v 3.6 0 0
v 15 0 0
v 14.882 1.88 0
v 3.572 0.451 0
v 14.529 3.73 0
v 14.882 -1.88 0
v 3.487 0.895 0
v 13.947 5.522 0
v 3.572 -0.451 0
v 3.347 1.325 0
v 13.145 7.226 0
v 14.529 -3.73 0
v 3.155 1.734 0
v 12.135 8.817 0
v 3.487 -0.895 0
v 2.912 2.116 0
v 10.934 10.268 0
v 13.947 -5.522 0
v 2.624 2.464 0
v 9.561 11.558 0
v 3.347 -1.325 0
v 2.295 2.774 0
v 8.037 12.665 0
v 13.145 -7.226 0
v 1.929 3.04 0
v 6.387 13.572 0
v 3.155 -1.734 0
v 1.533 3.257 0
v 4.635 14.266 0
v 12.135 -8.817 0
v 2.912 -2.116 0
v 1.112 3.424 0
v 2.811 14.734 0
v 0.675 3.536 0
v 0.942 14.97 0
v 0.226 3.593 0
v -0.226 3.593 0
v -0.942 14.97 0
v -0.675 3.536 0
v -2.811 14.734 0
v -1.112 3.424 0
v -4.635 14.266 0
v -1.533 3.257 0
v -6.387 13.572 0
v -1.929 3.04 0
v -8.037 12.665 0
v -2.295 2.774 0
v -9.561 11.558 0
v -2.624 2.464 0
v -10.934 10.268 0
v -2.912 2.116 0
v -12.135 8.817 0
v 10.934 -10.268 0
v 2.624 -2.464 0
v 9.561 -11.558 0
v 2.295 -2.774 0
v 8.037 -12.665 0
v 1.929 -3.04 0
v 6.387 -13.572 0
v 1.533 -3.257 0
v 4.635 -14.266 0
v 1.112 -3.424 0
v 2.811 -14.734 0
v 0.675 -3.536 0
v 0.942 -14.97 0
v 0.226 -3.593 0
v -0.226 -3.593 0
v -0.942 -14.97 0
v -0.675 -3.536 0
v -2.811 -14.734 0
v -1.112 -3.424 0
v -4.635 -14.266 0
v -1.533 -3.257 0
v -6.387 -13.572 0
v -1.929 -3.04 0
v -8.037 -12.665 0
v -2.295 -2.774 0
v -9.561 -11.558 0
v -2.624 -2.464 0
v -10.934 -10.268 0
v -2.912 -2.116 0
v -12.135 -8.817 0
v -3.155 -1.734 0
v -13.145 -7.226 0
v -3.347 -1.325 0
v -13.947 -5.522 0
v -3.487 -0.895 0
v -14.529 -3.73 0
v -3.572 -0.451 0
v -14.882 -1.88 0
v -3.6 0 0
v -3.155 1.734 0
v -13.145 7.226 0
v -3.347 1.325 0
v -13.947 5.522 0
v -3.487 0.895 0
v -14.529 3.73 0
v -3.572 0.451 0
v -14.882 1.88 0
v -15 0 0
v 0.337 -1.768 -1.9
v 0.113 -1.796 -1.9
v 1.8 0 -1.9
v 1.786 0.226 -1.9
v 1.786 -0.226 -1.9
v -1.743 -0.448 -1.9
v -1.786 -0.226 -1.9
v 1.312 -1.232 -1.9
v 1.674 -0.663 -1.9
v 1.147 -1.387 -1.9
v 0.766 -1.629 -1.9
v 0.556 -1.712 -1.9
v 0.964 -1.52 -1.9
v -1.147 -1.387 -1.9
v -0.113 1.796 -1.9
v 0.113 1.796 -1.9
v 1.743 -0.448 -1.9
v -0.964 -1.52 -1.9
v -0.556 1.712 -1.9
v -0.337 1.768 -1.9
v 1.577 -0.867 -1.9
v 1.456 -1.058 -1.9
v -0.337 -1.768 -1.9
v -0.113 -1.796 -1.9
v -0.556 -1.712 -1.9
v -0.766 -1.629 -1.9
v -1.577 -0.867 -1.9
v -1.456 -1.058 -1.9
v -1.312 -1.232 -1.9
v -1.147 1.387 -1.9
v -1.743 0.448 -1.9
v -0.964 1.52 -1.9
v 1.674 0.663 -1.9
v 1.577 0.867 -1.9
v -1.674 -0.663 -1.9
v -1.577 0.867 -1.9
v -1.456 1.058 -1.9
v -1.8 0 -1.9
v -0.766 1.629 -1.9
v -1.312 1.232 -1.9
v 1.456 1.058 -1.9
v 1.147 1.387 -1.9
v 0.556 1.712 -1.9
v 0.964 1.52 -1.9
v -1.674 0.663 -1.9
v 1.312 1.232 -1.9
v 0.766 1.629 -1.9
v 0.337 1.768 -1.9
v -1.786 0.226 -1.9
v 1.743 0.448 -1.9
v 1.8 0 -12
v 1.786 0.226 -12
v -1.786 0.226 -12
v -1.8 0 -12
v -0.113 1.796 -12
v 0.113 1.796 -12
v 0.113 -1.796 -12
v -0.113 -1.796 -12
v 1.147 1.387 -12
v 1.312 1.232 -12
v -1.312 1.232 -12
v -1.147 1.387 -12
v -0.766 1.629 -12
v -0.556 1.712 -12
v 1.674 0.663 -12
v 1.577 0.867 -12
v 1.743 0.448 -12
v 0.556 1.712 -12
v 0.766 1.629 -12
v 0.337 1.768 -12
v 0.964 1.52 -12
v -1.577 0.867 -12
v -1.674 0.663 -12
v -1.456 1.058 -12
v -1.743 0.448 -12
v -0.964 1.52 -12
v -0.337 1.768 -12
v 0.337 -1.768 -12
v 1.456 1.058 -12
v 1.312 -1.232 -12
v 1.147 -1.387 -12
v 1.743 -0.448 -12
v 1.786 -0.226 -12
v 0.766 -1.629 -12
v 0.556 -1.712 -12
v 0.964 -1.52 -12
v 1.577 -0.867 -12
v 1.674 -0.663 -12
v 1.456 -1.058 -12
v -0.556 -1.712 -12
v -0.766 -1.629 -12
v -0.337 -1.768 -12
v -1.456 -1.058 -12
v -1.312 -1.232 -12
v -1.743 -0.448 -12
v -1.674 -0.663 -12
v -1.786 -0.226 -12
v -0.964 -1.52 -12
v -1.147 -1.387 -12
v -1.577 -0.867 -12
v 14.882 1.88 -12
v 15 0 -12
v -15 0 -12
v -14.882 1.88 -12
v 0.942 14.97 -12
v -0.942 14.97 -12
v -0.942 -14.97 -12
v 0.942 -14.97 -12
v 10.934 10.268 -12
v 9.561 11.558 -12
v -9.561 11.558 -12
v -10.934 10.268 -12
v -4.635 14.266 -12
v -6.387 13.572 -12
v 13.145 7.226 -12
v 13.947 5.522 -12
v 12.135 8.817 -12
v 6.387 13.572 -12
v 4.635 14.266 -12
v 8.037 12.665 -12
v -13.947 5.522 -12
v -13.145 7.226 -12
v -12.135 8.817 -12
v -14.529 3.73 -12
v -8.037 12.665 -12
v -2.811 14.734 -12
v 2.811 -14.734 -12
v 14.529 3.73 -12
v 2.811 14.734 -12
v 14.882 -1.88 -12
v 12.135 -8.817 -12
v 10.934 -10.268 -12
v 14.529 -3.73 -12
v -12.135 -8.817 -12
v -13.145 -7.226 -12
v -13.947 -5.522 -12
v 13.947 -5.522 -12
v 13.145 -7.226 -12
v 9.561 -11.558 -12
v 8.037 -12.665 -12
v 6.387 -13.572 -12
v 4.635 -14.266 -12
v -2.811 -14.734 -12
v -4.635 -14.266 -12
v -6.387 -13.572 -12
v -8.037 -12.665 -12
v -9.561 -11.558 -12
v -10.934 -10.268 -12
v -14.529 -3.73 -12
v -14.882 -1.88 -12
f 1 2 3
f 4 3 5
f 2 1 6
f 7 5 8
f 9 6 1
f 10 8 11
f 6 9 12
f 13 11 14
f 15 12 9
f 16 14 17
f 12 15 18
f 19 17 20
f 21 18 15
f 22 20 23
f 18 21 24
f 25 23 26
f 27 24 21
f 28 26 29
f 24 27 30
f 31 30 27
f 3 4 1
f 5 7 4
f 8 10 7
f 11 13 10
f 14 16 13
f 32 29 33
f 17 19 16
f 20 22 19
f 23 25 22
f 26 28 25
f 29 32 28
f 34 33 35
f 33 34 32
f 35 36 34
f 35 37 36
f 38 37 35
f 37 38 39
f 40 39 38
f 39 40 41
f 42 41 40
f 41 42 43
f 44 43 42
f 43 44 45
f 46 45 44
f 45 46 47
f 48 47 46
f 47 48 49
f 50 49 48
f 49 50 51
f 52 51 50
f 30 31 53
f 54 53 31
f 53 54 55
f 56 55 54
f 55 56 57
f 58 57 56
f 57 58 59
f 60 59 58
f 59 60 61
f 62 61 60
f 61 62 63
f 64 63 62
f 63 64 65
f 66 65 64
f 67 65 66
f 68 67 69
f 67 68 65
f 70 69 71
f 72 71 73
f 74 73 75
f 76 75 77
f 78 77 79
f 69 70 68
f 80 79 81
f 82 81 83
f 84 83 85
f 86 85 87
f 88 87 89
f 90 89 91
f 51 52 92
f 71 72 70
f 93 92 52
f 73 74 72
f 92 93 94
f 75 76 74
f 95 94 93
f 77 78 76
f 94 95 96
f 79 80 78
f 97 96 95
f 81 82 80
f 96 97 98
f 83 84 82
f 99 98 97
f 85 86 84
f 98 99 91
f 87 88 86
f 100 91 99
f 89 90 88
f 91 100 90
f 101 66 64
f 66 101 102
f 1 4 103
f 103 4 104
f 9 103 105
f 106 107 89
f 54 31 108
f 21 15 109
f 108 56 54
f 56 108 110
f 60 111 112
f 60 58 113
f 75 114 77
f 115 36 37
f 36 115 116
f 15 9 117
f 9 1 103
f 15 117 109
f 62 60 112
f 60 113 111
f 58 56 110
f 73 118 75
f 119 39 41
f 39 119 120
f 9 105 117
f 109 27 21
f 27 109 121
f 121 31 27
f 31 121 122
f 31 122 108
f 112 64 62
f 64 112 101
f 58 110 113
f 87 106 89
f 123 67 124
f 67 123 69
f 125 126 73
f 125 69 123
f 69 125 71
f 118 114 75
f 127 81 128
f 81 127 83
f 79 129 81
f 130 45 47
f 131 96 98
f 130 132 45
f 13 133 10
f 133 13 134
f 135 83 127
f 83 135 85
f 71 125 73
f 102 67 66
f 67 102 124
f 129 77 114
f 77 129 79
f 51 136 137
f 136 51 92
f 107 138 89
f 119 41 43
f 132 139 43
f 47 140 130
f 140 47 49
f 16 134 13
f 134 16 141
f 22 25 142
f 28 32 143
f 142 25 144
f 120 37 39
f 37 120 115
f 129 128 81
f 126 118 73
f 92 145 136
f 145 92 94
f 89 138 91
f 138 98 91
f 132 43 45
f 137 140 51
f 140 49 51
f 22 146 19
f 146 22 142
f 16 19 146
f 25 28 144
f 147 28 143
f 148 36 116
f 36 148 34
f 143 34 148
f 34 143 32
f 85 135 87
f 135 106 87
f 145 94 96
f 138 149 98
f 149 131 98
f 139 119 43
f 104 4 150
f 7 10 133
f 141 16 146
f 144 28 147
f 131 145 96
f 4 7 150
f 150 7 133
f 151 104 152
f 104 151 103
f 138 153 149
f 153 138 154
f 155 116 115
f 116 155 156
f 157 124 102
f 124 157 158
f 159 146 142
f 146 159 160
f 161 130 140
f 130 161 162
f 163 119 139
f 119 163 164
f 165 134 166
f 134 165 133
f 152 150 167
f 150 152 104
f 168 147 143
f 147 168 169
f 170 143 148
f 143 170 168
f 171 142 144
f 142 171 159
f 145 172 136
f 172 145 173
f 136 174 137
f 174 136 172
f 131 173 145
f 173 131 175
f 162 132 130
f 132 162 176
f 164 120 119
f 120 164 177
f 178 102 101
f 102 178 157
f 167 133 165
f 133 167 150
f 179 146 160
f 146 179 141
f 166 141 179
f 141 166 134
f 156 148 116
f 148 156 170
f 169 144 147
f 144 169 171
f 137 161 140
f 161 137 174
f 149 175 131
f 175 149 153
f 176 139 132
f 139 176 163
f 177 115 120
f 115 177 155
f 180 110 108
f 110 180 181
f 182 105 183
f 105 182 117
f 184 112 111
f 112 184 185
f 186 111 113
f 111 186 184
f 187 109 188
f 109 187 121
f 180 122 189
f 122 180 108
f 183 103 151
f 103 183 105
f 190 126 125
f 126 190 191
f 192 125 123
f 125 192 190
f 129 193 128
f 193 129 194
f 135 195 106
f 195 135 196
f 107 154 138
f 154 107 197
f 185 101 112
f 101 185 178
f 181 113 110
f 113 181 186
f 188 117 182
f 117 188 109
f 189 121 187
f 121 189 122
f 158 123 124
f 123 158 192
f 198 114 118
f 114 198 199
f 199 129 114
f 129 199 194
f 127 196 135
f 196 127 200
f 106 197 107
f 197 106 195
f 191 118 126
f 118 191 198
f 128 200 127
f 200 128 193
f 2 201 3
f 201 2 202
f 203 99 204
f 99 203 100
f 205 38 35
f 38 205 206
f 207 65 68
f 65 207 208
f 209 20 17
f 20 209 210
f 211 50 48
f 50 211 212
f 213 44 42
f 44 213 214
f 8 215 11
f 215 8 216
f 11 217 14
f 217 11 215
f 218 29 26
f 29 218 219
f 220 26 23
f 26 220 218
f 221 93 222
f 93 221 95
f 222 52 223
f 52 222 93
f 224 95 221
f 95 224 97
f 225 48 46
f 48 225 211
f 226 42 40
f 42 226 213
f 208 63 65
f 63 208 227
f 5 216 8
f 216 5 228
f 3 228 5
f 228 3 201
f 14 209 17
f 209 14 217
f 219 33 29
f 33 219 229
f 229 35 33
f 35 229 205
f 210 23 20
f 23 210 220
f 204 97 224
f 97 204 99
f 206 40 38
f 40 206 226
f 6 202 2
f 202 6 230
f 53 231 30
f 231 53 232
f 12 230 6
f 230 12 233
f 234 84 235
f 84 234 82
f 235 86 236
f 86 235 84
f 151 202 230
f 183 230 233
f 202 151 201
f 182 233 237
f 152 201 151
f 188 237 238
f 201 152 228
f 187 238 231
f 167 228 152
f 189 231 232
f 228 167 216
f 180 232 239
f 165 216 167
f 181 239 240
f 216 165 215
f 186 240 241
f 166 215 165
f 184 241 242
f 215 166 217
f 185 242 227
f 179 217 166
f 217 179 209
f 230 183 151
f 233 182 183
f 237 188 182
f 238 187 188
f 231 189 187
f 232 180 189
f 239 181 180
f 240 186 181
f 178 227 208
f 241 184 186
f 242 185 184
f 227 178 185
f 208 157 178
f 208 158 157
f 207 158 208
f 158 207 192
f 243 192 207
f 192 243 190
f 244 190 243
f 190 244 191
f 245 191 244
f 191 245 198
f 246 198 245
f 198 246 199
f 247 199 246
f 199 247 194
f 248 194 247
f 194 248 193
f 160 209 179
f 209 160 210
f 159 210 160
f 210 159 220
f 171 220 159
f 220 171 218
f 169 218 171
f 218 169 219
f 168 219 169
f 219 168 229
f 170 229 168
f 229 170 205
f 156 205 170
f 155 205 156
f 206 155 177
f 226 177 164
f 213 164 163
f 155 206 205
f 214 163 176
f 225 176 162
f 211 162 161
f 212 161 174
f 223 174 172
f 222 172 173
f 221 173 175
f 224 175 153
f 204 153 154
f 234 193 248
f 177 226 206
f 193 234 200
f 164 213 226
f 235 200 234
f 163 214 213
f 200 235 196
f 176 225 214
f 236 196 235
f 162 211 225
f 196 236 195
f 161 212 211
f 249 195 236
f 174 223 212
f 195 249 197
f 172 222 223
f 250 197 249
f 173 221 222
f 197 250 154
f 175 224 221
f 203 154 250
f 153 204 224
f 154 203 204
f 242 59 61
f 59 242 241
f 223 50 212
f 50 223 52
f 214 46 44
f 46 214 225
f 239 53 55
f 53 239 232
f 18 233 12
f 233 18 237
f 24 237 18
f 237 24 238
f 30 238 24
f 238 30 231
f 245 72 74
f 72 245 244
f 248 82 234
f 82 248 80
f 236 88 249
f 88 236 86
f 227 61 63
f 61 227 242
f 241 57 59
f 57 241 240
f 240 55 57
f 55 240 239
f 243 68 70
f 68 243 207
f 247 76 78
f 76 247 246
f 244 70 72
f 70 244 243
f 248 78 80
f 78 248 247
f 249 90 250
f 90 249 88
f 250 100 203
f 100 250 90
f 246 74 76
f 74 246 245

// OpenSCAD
$fn = 50;


difference() {
	union() {
		translate(v = [0, 0, -12.0000000000]) {
			cylinder(h = 12, r = 15.0000000000);
		}
	}
	union() {
		translate(v = [0, 0, 0]) {
			rotate(a = [0, 0, 0]) {
				difference() {
					union() {
						translate(v = [0, 0, -15.0000000000]) {
							cylinder(h = 15, r = 1.5000000000);
						}
						translate(v = [0, 0, -1.9000000000]) {
							cylinder(h = 1.9000000000, r1 = 1.8000000000, r2 = 3.6000000000);
						}
						translate(v = [0, 0, -15.0000000000]) {
							cylinder(h = 15, r = 1.8000000000);
						}
						translate(v = [0, 0, -15.0000000000]) {
							cylinder(h = 15, r = 1.5000000000);
						}
					}
					union();
				}
			}
		}
	}
}
